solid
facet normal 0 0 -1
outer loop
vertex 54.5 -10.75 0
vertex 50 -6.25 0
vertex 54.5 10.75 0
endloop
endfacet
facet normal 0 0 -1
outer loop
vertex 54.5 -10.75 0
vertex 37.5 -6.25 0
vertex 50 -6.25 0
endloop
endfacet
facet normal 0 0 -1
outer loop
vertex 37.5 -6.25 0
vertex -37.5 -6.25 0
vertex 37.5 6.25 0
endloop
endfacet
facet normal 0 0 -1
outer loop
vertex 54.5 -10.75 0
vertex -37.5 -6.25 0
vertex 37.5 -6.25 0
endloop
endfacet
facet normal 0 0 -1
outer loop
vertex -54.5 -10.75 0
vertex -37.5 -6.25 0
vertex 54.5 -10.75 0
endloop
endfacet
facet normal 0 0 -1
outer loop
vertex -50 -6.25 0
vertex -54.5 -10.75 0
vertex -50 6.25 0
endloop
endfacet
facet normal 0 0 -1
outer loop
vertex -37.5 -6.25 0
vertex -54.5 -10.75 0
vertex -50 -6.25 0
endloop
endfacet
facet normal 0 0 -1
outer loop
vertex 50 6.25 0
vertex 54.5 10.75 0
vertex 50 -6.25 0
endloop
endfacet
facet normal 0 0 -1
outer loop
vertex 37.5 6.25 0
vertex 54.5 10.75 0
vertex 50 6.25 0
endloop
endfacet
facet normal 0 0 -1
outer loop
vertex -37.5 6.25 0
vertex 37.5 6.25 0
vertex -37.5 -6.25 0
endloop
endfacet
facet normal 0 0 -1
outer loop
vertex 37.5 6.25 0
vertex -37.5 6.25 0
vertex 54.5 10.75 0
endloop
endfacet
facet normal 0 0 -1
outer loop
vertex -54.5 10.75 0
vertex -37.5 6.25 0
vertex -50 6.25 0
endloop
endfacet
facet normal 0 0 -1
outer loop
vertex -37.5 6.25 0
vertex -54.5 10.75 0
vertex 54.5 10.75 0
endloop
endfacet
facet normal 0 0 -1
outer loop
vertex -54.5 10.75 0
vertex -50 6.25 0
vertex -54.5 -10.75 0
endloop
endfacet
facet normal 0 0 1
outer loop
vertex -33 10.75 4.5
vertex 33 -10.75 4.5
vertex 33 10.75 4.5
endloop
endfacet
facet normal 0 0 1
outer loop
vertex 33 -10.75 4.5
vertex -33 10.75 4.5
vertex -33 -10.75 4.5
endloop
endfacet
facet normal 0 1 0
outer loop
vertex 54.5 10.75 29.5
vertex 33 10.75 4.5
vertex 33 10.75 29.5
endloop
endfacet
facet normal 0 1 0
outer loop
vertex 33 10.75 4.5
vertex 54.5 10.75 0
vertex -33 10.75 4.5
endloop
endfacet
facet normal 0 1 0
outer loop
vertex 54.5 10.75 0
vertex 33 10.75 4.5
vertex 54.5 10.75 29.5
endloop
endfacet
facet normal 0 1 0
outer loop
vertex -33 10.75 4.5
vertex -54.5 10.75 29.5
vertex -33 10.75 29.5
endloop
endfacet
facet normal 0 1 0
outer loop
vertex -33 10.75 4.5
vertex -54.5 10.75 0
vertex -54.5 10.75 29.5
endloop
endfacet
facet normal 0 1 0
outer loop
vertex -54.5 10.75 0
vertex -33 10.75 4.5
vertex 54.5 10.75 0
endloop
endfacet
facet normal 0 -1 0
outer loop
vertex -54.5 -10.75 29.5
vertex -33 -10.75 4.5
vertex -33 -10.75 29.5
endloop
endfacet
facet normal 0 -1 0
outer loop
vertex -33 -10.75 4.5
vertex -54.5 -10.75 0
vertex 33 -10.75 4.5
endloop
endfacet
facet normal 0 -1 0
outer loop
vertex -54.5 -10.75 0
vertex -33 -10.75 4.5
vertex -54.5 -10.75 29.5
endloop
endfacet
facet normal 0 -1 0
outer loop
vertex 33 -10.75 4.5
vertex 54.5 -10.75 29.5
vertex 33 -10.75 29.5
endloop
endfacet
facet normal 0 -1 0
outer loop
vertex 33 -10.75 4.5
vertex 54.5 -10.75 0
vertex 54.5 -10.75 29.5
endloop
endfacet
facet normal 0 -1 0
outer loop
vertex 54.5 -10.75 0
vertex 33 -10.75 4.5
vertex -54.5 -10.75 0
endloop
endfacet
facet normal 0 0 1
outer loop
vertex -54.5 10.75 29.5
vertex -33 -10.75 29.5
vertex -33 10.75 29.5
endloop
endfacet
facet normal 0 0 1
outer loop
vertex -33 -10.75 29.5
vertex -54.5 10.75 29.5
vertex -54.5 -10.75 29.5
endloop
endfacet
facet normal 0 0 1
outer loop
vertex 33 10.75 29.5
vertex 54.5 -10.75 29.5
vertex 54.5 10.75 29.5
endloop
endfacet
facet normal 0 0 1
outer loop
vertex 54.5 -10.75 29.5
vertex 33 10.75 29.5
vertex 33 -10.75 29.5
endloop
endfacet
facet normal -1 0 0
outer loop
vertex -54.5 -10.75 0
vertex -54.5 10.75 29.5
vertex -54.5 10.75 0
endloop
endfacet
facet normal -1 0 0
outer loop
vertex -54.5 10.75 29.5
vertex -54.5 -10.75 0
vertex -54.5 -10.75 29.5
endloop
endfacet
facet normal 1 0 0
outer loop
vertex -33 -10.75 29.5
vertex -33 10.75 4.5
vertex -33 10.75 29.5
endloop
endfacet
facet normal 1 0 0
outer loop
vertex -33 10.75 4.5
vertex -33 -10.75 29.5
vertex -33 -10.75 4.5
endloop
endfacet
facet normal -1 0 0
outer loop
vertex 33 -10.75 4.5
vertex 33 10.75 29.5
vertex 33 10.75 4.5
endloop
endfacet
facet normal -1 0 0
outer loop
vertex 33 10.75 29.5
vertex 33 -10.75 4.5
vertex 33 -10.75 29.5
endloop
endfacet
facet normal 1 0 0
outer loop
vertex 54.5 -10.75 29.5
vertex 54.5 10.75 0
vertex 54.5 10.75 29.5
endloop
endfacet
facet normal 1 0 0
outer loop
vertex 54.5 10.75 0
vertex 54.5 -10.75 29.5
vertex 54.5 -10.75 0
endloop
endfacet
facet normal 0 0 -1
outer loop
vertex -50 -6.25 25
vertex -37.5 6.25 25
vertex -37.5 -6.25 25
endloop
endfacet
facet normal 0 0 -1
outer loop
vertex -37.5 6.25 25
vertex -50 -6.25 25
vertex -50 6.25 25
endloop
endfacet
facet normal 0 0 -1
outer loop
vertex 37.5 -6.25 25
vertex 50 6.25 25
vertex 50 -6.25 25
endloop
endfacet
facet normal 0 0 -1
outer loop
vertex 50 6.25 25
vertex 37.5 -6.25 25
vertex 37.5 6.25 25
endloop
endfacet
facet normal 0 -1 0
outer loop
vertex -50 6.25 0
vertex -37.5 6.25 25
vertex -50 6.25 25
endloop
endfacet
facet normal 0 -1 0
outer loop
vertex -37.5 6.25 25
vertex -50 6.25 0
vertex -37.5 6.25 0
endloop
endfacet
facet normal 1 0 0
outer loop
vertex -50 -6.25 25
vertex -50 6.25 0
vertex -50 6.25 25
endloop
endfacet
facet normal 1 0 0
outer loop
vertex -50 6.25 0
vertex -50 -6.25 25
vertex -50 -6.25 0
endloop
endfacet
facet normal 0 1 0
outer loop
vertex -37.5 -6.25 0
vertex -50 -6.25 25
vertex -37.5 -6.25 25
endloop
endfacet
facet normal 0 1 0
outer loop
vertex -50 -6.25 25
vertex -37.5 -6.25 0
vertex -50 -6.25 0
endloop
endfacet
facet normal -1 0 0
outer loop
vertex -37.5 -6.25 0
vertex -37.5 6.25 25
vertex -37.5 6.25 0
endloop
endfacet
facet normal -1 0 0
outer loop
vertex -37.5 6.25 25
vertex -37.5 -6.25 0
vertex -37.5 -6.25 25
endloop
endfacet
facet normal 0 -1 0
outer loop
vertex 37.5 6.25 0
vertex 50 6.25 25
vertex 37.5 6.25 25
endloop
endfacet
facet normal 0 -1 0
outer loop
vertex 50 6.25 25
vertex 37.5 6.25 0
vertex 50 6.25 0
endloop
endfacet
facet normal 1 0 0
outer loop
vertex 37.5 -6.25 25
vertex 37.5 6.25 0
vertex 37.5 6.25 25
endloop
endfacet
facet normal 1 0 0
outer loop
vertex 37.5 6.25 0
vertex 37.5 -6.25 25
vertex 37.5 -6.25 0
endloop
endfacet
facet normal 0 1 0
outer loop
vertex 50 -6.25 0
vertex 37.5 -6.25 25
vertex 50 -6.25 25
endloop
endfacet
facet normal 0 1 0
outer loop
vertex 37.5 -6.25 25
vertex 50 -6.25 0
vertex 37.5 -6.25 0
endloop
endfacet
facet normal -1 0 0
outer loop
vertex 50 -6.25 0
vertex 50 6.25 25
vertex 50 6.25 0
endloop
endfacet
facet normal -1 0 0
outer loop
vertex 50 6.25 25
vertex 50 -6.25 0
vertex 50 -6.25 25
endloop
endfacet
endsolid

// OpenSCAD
bu = 12.5;
bumper_thick = 4.5;

difference() {
  union() {
    linear_extrude(bumper_thick) {
      square([6*bu+2*bumper_thick, bu+2*bumper_thick],center=true);
    }
    linear_extrude(2*bu+bumper_thick) {
      translate([-3.5*bu,0]) square(bu+2*bumper_thick,center=true);
      translate([3.5*bu,0]) square(bu+2*bumper_thick,center=true);
    }
  }
  linear_extrude(2*bu) {
      translate([-3.5*bu,0]) square(bu,center=true);
      translate([3.5*bu,0]) square(bu,center=true);
    }
}
